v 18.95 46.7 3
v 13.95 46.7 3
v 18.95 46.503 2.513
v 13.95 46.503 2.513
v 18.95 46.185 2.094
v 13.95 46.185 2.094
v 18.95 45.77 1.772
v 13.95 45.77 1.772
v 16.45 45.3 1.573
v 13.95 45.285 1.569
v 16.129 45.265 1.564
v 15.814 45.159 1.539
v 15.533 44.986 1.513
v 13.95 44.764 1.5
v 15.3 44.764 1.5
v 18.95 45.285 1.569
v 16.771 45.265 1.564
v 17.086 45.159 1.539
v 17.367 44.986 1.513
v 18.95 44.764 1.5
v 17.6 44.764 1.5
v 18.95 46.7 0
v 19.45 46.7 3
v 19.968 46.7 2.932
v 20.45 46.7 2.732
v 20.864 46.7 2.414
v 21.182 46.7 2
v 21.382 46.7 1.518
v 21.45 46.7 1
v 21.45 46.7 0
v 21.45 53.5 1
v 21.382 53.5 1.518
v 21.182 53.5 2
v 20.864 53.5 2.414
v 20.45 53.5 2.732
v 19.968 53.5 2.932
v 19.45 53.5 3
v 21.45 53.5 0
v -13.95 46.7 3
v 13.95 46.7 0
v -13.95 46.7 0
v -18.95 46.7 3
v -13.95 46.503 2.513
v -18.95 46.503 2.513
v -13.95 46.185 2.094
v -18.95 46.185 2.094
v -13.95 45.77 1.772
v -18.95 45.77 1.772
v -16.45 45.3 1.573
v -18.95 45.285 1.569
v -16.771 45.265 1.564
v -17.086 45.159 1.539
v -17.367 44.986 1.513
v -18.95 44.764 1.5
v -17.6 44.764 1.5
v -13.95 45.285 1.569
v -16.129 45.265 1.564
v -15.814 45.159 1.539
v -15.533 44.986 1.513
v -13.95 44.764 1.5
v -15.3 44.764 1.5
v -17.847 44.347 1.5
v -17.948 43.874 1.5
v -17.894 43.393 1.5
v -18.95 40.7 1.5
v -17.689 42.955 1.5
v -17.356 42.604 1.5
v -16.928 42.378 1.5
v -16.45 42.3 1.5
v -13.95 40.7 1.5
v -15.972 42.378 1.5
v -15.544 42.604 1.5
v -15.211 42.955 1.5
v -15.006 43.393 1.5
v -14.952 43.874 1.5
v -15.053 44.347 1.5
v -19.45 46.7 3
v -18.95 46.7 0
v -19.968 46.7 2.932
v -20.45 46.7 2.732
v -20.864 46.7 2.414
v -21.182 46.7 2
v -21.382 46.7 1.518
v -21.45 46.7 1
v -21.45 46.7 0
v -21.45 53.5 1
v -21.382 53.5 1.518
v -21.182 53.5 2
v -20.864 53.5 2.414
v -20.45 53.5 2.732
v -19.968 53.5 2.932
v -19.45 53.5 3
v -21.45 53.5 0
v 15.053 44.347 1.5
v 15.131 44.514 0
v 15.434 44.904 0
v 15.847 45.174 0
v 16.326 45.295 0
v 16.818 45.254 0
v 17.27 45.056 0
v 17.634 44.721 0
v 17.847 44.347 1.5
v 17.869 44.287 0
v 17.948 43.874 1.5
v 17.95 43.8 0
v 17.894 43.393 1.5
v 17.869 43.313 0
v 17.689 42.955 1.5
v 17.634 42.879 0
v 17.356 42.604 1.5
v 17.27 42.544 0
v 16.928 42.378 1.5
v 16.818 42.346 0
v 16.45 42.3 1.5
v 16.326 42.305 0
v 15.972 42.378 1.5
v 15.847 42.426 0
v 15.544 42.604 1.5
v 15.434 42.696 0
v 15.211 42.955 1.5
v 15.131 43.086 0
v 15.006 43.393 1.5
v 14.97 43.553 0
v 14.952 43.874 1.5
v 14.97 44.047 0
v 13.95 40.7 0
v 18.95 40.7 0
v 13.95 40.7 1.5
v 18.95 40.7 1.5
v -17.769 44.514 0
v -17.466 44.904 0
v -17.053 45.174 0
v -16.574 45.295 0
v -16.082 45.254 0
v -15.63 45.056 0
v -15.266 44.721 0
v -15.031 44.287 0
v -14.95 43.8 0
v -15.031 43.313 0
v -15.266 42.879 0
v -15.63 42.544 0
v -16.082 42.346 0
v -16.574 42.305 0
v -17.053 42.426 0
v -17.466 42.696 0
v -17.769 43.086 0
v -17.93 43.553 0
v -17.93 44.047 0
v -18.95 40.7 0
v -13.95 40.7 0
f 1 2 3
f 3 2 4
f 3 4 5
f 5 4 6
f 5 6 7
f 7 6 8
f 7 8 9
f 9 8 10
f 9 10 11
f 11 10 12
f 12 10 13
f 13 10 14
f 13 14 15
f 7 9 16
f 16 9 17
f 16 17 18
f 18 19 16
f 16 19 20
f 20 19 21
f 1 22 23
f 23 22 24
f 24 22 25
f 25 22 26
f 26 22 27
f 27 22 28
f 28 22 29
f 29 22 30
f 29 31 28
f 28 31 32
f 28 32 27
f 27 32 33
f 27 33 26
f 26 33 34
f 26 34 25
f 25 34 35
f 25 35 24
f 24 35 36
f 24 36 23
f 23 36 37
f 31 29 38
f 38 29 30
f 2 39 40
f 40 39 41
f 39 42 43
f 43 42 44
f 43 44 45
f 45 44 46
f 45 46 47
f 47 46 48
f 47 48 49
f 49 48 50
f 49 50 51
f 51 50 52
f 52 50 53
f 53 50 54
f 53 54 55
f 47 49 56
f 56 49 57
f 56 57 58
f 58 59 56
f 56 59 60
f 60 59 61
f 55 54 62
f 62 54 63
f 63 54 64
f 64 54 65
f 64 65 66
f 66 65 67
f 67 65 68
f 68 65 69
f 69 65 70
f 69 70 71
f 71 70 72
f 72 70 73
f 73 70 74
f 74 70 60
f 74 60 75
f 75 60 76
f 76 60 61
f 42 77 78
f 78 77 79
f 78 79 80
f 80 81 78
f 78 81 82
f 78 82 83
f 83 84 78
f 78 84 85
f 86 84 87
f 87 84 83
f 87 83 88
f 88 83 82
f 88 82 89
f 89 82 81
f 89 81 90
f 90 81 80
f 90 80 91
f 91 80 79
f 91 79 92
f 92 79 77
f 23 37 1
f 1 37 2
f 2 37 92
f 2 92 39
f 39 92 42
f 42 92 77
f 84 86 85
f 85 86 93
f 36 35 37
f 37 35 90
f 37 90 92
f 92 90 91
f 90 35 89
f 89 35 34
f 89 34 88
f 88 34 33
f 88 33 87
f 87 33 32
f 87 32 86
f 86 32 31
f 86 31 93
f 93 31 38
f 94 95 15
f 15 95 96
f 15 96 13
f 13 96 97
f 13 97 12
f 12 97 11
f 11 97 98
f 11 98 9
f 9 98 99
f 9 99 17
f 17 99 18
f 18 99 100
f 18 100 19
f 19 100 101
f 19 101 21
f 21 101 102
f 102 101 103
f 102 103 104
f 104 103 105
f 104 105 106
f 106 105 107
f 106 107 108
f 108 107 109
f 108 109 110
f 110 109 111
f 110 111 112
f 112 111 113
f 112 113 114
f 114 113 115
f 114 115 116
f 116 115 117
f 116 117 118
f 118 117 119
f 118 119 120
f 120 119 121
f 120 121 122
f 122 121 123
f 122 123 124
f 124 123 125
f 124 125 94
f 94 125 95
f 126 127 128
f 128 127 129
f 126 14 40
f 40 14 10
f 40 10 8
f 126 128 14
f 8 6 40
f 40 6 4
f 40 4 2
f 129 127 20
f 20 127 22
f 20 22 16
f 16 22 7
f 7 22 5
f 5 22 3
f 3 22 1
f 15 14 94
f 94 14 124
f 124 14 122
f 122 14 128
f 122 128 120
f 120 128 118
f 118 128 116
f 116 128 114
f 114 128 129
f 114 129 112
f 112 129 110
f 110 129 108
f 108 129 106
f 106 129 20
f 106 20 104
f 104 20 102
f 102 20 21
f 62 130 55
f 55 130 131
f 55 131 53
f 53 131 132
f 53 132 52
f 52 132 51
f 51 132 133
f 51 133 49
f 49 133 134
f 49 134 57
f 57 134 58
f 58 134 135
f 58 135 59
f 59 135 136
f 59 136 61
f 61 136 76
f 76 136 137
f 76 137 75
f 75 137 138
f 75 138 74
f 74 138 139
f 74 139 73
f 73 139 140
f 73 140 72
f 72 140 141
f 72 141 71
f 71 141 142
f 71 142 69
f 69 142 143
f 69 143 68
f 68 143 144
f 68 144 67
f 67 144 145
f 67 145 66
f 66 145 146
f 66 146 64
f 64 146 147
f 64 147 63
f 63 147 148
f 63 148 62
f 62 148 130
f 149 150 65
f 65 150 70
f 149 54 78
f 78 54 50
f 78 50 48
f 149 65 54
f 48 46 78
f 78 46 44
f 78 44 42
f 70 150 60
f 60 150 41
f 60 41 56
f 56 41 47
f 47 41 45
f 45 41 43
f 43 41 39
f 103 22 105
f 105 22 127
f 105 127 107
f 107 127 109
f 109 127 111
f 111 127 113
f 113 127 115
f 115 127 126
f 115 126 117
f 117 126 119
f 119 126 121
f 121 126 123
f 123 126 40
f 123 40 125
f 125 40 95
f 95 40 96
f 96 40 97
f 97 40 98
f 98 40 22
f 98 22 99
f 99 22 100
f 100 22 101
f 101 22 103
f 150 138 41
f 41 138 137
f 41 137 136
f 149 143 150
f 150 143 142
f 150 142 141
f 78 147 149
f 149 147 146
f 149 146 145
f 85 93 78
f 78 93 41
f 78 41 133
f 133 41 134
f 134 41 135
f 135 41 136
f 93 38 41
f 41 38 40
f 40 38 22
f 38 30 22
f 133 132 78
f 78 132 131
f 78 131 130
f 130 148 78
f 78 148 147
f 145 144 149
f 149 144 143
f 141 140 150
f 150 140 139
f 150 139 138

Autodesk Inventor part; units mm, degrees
ref_plane "YZ Plane" through (0, 0, 0) normal (1, 0, 0) x (0, 1, 0)
ref_plane "XZ Plane" through (0, 0, 0) normal (0, 1, 0) x (-1, 0, 0)
ref_plane "XY Plane" through (0, 0, 0) normal (0, 0, 1) x (1, 0, 0)
sketch "Эскиз1" plane through (0, 0, 0) normal (0, 0, 1) x (1, 0, 0)
  line L0 (0, 0) -> (21.45, 0) construction
  line L1 (21.45, 0) -> (21.45, 46.7) construction
  line L2 (21.45, 46.7) -> (0, 46.7) construction
  line L3 (0, 46.7) -> (0, 0) construction
  line L4 (21.45, 46.7) -> (16.45, 46.7) construction
  line L5 (16.45, 46.7) -> (16.45, 43.8) construction
  line L6 (16.45, 43.8) -> (21.45, 43.8) construction
  line L7 (21.45, 43.8) -> (21.45, 46.7) construction
  circle A0 centre (16.45, 43.8) radius 1.5
  circle A1 centre (-16.45, 43.8) radius 1.5
  line L8 (21.45, 46.7) -> (-21.45, 46.7)
  line L9 (-21.45, 46.7) -> (-21.45, 53.5)
  line L10 (-21.45, 53.5) -> (21.45, 53.5)
  line L11 (21.45, 53.5) -> (21.45, 46.7)
  line L12 (21.45, 46.7) -> (18.95, 46.7)
  line L13 (18.95, 46.7) -> (18.95, 40.7)
  line L14 (18.95, 40.7) -> (13.95, 40.7)
  line L15 (13.95, 40.7) -> (13.95, 46.7)
  line L16 (-16.45, 46.7) -> (-16.45, 43.8) construction
  line L17 (-16.45, 43.8) -> (-21.45, 43.8) construction
  line L18 (-18.95, 46.7) -> (-18.95, 40.7)
  line L19 (-18.95, 40.7) -> (-13.95, 40.7)
  line L20 (-13.95, 40.7) -> (-13.95, 46.7)
  circle A2 centre (-16.45, 43.8) radius 1.5
  dimension "d0" = 21.45
  dimension "d1" = 46.7
  dimension "d2" = 5
  dimension "d3" = 2.9
  dimension "d4" = 3
  dimension "d5" = 42.9
  dimension "d6" = 6.8
  dimension "d7" = 2.5
  dimension "d8" = 6
  dimension "d9" = 5
extrude "Выдавливание1" add sketch "Эскиз1" along normal blind 1.5 contours L13 L14 L15 L8 | L20 L19 L18 L8
extrude "Выдавливание2" add sketch "Эскиз1" along normal blind 3 contours L8 L9 L10 L11
fillet "Сопряжение1" radius 2 4 edges at (-21.45, 50.1, 3) (-16.45, 46.7, 1.5) (21.45, 50.1, 3) (16.45, 46.7, 1.5)
properties part number "wire_fixs"
